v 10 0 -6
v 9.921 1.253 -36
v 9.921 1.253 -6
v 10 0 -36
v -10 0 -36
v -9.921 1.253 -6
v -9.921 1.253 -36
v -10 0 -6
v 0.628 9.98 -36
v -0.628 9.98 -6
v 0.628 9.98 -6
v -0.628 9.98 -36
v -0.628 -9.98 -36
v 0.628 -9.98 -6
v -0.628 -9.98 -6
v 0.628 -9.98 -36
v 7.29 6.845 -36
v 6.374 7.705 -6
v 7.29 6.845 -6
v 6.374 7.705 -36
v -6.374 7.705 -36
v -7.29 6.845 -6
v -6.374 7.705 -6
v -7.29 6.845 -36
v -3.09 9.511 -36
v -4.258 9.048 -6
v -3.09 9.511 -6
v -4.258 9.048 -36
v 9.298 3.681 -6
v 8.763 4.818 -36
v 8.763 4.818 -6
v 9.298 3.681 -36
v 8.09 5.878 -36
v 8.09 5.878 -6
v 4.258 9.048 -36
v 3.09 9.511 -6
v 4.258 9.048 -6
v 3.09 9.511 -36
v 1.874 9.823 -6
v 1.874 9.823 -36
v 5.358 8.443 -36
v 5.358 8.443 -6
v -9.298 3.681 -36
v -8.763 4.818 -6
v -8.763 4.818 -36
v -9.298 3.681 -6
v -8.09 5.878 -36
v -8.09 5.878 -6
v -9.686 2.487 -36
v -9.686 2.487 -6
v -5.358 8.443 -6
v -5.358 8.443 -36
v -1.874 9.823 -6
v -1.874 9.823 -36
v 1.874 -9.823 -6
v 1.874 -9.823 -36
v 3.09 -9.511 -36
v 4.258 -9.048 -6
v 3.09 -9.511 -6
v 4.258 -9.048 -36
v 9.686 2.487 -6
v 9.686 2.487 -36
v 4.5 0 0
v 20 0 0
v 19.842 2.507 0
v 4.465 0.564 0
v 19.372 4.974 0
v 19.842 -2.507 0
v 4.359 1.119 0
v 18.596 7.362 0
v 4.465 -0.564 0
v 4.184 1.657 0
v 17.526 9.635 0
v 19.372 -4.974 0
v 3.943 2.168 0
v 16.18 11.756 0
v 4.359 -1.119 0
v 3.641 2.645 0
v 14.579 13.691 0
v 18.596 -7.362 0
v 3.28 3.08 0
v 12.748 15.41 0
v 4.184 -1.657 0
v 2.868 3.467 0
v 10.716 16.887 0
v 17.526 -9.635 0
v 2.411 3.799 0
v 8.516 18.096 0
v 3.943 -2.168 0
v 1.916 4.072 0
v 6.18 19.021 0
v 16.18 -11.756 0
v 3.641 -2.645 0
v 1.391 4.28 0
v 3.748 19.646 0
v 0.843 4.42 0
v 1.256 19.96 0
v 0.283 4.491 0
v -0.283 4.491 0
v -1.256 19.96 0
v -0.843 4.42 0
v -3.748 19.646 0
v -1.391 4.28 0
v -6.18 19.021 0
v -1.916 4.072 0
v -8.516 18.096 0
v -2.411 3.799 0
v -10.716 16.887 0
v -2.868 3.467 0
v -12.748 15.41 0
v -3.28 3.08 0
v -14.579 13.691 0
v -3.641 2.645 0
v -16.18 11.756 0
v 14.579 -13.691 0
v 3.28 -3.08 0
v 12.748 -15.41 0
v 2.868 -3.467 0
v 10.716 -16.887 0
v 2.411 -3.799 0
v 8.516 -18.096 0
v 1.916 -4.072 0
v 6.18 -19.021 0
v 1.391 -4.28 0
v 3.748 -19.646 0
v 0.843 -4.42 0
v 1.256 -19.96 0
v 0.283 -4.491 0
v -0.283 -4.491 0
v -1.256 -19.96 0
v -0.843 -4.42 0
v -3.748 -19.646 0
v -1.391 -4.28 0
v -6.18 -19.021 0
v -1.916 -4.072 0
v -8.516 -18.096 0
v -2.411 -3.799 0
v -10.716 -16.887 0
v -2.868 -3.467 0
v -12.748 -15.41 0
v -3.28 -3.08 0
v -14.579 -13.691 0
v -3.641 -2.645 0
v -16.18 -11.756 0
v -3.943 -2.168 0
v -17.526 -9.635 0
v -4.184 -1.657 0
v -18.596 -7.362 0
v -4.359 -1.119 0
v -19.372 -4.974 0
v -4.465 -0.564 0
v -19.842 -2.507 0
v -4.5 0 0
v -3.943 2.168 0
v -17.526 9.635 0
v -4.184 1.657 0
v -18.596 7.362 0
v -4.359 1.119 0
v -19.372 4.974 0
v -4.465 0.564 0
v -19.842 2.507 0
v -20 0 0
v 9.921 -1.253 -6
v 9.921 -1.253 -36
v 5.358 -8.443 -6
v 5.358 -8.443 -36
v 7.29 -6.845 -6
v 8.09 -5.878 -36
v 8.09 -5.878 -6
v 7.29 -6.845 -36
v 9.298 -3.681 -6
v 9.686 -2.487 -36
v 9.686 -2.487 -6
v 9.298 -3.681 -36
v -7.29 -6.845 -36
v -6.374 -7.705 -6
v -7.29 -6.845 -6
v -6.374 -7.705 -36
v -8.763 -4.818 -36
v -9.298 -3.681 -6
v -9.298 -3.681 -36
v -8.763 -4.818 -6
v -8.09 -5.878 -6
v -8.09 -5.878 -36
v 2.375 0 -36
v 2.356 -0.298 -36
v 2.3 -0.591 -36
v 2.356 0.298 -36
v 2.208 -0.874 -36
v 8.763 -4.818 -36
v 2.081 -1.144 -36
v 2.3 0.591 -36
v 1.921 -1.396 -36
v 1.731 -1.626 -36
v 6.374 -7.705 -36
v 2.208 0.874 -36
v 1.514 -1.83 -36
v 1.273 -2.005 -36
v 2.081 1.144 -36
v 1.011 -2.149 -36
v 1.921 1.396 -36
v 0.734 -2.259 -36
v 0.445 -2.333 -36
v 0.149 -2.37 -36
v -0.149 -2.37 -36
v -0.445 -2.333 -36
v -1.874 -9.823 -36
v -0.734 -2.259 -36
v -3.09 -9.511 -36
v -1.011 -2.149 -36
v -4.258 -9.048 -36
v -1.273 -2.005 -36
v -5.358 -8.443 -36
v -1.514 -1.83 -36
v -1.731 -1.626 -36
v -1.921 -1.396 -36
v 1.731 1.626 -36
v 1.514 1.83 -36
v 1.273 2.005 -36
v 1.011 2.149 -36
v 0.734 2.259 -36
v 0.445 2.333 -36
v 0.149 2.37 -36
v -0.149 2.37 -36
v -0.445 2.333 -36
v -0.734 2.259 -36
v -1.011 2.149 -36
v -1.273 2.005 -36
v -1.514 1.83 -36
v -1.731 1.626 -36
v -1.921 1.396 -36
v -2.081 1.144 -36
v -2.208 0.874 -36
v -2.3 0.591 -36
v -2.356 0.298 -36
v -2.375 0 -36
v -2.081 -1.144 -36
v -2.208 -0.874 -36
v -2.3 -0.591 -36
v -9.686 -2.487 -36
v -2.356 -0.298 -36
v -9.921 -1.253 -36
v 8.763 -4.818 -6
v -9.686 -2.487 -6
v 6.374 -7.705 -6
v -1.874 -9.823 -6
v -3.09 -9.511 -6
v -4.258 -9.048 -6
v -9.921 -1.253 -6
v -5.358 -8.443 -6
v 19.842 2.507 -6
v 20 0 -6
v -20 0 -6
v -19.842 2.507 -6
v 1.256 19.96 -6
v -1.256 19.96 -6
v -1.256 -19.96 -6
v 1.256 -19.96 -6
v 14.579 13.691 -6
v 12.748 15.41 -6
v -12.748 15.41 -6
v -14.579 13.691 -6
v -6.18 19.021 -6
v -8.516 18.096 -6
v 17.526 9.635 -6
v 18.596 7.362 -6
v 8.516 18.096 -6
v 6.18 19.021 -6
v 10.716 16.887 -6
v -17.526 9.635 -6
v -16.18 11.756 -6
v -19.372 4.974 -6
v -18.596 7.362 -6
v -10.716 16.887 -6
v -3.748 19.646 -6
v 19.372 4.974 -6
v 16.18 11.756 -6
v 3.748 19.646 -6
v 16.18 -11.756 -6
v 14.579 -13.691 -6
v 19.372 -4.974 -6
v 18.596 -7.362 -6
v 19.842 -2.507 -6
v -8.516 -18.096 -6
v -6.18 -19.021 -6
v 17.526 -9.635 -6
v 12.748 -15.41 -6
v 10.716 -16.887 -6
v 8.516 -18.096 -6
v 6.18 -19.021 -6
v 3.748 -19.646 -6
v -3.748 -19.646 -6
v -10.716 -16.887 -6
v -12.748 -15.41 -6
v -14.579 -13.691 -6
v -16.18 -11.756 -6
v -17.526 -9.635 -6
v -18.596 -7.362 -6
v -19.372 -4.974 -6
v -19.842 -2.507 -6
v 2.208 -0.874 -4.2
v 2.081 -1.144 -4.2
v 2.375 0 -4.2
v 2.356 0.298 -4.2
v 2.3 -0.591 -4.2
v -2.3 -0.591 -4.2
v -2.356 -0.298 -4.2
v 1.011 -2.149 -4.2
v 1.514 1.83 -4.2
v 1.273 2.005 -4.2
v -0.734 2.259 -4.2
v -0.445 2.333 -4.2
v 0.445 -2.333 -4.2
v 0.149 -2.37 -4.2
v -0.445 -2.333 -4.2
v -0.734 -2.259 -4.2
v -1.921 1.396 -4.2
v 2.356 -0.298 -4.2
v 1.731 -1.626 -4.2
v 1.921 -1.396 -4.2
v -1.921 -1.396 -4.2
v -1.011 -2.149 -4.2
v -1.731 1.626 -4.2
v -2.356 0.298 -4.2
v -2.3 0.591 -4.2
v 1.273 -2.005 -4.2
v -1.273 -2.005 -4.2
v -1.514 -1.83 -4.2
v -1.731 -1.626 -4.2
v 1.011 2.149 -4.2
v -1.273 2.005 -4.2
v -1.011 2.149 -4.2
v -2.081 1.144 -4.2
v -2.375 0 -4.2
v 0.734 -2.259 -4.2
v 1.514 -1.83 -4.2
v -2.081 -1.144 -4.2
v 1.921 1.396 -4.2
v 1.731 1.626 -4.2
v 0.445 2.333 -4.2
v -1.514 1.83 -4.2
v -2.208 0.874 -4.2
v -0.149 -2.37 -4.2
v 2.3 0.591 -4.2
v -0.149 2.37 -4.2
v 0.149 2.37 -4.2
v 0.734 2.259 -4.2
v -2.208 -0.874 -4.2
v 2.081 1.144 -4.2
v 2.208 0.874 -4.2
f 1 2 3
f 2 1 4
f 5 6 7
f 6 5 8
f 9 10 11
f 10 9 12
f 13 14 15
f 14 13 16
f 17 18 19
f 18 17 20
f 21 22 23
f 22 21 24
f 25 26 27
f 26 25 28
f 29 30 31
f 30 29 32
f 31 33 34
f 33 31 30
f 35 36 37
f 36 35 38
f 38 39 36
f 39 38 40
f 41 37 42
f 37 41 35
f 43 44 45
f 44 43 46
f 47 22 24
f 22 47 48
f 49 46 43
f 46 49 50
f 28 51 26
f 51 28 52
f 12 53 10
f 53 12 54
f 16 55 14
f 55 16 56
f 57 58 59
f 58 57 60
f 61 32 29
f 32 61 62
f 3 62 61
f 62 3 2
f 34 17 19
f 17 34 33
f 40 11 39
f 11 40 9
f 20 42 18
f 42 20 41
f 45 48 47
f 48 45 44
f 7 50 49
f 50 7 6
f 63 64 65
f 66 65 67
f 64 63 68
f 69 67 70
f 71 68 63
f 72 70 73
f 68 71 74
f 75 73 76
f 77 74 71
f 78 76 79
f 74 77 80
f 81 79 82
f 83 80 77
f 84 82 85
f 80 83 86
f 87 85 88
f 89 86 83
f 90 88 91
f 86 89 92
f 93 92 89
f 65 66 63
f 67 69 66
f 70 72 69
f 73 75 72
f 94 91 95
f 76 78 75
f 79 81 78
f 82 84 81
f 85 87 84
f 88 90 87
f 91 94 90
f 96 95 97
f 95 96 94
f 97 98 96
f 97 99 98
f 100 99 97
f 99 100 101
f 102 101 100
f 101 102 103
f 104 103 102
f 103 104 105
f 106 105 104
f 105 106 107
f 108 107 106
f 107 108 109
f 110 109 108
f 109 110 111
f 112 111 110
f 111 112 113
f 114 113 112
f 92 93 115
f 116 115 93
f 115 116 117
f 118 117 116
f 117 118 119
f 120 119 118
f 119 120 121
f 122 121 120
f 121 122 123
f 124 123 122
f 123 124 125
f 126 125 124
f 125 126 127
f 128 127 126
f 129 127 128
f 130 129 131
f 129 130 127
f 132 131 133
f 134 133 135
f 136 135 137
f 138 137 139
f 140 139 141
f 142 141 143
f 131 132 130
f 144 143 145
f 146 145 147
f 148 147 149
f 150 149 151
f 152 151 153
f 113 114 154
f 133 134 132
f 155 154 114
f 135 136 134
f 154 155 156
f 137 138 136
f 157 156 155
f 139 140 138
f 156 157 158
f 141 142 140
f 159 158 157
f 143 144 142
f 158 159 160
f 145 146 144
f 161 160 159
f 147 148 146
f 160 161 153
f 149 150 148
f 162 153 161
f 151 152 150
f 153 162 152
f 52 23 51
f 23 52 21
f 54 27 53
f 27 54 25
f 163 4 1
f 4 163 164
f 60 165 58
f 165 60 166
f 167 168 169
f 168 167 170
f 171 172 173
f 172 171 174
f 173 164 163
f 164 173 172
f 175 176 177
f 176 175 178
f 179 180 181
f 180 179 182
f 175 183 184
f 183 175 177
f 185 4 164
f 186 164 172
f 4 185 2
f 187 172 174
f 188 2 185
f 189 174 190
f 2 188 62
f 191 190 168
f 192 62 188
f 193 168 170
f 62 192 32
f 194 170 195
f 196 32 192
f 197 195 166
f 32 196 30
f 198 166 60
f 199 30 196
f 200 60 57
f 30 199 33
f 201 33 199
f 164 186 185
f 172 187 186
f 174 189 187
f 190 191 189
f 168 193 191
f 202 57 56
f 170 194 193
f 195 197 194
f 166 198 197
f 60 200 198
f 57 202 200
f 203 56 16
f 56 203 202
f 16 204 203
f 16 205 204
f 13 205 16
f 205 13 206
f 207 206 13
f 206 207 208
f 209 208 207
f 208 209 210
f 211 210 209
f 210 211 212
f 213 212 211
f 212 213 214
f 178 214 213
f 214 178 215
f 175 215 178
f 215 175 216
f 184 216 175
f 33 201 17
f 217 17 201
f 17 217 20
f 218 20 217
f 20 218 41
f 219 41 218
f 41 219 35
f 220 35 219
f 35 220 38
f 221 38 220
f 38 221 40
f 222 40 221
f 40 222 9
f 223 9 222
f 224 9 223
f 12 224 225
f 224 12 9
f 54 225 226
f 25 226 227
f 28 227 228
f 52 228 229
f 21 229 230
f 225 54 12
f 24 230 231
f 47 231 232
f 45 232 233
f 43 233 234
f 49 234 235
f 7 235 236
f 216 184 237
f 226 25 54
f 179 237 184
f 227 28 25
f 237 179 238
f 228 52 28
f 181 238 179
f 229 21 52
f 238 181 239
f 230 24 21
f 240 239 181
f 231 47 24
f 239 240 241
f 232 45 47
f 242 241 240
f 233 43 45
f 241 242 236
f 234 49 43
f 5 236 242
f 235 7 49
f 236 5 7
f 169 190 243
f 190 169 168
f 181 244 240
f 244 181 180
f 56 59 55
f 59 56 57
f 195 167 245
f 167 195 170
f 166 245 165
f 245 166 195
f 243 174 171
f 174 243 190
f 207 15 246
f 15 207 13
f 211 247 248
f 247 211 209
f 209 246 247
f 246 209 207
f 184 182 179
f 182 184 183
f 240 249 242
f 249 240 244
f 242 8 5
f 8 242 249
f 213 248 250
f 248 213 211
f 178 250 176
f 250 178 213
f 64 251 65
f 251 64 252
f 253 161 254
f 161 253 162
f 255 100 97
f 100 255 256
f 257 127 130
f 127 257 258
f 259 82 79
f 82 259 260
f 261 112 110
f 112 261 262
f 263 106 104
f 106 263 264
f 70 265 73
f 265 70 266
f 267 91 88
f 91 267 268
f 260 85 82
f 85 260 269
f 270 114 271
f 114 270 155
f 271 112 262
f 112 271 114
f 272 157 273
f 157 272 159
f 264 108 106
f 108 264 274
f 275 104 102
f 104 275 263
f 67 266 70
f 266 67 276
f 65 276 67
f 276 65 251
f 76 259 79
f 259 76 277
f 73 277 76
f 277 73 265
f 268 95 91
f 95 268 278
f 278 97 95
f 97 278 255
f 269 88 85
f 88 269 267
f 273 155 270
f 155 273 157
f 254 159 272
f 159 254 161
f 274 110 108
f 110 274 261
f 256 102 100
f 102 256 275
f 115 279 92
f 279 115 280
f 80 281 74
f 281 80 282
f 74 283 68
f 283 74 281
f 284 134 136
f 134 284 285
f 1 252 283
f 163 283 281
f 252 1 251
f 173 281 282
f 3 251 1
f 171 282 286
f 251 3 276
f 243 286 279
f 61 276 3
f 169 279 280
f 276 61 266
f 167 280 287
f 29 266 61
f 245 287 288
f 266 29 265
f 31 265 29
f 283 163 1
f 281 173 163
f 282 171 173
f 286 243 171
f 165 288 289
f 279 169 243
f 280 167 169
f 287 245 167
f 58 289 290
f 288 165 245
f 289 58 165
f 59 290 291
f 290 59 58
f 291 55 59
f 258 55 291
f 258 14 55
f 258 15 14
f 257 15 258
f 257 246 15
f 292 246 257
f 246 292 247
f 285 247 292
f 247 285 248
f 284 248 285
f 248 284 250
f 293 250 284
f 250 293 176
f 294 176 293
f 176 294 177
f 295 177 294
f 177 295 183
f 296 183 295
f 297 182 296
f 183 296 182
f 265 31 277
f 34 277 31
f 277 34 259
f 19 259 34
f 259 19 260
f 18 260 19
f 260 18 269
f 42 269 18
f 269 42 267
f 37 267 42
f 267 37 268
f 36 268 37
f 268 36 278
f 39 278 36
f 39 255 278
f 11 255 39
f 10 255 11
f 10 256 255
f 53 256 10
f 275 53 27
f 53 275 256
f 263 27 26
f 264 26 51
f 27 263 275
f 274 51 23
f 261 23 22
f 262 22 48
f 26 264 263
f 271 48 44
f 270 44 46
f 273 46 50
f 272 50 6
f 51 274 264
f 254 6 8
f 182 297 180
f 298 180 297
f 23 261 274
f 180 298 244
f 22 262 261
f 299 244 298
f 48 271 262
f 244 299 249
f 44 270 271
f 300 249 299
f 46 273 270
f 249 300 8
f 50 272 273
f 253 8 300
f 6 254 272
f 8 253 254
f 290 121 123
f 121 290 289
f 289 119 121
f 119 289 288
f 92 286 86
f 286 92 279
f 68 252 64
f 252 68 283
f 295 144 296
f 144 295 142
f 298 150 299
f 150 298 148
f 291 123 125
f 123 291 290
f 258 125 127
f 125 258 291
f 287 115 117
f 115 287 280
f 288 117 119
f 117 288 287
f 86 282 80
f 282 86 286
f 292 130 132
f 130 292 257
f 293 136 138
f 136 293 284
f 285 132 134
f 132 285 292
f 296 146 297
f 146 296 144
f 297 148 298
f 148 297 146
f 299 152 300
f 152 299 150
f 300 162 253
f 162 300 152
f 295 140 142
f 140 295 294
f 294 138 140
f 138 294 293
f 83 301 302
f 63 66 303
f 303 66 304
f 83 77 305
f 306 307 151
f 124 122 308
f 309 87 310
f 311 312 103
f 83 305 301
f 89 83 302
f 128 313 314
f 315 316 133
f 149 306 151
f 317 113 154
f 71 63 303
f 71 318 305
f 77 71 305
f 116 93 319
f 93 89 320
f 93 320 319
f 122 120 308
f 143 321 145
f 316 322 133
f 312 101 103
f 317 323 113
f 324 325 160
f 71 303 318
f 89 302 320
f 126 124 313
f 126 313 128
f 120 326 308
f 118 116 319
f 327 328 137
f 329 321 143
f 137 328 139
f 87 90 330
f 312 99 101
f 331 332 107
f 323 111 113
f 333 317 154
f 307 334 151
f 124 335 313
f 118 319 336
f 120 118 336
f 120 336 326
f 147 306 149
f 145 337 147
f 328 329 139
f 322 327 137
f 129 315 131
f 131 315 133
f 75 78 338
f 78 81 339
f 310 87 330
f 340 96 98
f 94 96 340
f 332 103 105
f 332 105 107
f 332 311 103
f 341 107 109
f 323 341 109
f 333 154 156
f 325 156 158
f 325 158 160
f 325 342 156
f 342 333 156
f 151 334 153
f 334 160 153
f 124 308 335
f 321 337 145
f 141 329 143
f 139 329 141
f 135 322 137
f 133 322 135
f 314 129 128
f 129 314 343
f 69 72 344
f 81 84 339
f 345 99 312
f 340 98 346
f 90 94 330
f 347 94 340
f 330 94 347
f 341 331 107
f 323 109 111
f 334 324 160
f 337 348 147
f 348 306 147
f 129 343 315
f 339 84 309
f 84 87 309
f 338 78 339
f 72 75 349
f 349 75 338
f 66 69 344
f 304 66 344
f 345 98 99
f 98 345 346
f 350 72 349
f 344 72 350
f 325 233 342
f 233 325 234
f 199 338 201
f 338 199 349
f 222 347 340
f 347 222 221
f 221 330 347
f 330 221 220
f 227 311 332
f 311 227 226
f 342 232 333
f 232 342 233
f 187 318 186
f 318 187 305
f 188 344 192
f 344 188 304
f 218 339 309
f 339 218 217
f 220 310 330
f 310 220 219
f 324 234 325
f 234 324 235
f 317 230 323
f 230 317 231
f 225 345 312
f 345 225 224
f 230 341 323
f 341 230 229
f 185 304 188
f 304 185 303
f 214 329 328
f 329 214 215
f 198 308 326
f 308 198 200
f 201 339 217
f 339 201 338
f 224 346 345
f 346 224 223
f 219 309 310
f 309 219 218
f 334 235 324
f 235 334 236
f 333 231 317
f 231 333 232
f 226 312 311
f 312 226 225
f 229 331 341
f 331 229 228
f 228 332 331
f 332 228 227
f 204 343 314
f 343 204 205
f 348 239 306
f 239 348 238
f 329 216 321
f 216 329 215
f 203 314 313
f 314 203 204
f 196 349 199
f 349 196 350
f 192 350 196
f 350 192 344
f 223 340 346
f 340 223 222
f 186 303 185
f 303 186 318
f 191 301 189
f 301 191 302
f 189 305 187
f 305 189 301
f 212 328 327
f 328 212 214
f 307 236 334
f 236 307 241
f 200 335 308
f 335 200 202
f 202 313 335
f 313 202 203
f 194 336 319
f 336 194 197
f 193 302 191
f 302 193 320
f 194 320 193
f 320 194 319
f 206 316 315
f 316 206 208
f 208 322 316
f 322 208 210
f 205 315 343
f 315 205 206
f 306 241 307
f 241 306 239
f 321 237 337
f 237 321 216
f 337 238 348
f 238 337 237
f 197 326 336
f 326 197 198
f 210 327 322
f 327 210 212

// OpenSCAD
$fn = 50;


difference() {
	union() {
		translate(v = [0, 0, -36.0000000000]) {
			cylinder(h = 36, r = 10.0000000000);
		}
		translate(v = [0, 0, -6.0000000000]) {
			cylinder(h = 6, r = 20.0000000000);
		}
	}
	union() {
		translate(v = [0, 0, 0]) {
			rotate(a = [0, 0, 0]) {
				difference() {
					union() {
						#translate(v = [0, 0, -36.0000000000]) {
							cylinder(h = 36, r = 2.2500000000);
						}
						#translate(v = [0, 0, -4.2000000000]) {
							cylinder(h = 4.2000000000, r1 = 2.3750000000, r2 = 4.5000000000);
						}
						#translate(v = [0, 0, -36.0000000000]) {
							cylinder(h = 36, r = 2.3750000000);
						}
						#translate(v = [0, 0, -36.0000000000]) {
							cylinder(h = 36, r = 2.2500000000);
						}
					}
					union();
				}
			}
		}
	}
}
